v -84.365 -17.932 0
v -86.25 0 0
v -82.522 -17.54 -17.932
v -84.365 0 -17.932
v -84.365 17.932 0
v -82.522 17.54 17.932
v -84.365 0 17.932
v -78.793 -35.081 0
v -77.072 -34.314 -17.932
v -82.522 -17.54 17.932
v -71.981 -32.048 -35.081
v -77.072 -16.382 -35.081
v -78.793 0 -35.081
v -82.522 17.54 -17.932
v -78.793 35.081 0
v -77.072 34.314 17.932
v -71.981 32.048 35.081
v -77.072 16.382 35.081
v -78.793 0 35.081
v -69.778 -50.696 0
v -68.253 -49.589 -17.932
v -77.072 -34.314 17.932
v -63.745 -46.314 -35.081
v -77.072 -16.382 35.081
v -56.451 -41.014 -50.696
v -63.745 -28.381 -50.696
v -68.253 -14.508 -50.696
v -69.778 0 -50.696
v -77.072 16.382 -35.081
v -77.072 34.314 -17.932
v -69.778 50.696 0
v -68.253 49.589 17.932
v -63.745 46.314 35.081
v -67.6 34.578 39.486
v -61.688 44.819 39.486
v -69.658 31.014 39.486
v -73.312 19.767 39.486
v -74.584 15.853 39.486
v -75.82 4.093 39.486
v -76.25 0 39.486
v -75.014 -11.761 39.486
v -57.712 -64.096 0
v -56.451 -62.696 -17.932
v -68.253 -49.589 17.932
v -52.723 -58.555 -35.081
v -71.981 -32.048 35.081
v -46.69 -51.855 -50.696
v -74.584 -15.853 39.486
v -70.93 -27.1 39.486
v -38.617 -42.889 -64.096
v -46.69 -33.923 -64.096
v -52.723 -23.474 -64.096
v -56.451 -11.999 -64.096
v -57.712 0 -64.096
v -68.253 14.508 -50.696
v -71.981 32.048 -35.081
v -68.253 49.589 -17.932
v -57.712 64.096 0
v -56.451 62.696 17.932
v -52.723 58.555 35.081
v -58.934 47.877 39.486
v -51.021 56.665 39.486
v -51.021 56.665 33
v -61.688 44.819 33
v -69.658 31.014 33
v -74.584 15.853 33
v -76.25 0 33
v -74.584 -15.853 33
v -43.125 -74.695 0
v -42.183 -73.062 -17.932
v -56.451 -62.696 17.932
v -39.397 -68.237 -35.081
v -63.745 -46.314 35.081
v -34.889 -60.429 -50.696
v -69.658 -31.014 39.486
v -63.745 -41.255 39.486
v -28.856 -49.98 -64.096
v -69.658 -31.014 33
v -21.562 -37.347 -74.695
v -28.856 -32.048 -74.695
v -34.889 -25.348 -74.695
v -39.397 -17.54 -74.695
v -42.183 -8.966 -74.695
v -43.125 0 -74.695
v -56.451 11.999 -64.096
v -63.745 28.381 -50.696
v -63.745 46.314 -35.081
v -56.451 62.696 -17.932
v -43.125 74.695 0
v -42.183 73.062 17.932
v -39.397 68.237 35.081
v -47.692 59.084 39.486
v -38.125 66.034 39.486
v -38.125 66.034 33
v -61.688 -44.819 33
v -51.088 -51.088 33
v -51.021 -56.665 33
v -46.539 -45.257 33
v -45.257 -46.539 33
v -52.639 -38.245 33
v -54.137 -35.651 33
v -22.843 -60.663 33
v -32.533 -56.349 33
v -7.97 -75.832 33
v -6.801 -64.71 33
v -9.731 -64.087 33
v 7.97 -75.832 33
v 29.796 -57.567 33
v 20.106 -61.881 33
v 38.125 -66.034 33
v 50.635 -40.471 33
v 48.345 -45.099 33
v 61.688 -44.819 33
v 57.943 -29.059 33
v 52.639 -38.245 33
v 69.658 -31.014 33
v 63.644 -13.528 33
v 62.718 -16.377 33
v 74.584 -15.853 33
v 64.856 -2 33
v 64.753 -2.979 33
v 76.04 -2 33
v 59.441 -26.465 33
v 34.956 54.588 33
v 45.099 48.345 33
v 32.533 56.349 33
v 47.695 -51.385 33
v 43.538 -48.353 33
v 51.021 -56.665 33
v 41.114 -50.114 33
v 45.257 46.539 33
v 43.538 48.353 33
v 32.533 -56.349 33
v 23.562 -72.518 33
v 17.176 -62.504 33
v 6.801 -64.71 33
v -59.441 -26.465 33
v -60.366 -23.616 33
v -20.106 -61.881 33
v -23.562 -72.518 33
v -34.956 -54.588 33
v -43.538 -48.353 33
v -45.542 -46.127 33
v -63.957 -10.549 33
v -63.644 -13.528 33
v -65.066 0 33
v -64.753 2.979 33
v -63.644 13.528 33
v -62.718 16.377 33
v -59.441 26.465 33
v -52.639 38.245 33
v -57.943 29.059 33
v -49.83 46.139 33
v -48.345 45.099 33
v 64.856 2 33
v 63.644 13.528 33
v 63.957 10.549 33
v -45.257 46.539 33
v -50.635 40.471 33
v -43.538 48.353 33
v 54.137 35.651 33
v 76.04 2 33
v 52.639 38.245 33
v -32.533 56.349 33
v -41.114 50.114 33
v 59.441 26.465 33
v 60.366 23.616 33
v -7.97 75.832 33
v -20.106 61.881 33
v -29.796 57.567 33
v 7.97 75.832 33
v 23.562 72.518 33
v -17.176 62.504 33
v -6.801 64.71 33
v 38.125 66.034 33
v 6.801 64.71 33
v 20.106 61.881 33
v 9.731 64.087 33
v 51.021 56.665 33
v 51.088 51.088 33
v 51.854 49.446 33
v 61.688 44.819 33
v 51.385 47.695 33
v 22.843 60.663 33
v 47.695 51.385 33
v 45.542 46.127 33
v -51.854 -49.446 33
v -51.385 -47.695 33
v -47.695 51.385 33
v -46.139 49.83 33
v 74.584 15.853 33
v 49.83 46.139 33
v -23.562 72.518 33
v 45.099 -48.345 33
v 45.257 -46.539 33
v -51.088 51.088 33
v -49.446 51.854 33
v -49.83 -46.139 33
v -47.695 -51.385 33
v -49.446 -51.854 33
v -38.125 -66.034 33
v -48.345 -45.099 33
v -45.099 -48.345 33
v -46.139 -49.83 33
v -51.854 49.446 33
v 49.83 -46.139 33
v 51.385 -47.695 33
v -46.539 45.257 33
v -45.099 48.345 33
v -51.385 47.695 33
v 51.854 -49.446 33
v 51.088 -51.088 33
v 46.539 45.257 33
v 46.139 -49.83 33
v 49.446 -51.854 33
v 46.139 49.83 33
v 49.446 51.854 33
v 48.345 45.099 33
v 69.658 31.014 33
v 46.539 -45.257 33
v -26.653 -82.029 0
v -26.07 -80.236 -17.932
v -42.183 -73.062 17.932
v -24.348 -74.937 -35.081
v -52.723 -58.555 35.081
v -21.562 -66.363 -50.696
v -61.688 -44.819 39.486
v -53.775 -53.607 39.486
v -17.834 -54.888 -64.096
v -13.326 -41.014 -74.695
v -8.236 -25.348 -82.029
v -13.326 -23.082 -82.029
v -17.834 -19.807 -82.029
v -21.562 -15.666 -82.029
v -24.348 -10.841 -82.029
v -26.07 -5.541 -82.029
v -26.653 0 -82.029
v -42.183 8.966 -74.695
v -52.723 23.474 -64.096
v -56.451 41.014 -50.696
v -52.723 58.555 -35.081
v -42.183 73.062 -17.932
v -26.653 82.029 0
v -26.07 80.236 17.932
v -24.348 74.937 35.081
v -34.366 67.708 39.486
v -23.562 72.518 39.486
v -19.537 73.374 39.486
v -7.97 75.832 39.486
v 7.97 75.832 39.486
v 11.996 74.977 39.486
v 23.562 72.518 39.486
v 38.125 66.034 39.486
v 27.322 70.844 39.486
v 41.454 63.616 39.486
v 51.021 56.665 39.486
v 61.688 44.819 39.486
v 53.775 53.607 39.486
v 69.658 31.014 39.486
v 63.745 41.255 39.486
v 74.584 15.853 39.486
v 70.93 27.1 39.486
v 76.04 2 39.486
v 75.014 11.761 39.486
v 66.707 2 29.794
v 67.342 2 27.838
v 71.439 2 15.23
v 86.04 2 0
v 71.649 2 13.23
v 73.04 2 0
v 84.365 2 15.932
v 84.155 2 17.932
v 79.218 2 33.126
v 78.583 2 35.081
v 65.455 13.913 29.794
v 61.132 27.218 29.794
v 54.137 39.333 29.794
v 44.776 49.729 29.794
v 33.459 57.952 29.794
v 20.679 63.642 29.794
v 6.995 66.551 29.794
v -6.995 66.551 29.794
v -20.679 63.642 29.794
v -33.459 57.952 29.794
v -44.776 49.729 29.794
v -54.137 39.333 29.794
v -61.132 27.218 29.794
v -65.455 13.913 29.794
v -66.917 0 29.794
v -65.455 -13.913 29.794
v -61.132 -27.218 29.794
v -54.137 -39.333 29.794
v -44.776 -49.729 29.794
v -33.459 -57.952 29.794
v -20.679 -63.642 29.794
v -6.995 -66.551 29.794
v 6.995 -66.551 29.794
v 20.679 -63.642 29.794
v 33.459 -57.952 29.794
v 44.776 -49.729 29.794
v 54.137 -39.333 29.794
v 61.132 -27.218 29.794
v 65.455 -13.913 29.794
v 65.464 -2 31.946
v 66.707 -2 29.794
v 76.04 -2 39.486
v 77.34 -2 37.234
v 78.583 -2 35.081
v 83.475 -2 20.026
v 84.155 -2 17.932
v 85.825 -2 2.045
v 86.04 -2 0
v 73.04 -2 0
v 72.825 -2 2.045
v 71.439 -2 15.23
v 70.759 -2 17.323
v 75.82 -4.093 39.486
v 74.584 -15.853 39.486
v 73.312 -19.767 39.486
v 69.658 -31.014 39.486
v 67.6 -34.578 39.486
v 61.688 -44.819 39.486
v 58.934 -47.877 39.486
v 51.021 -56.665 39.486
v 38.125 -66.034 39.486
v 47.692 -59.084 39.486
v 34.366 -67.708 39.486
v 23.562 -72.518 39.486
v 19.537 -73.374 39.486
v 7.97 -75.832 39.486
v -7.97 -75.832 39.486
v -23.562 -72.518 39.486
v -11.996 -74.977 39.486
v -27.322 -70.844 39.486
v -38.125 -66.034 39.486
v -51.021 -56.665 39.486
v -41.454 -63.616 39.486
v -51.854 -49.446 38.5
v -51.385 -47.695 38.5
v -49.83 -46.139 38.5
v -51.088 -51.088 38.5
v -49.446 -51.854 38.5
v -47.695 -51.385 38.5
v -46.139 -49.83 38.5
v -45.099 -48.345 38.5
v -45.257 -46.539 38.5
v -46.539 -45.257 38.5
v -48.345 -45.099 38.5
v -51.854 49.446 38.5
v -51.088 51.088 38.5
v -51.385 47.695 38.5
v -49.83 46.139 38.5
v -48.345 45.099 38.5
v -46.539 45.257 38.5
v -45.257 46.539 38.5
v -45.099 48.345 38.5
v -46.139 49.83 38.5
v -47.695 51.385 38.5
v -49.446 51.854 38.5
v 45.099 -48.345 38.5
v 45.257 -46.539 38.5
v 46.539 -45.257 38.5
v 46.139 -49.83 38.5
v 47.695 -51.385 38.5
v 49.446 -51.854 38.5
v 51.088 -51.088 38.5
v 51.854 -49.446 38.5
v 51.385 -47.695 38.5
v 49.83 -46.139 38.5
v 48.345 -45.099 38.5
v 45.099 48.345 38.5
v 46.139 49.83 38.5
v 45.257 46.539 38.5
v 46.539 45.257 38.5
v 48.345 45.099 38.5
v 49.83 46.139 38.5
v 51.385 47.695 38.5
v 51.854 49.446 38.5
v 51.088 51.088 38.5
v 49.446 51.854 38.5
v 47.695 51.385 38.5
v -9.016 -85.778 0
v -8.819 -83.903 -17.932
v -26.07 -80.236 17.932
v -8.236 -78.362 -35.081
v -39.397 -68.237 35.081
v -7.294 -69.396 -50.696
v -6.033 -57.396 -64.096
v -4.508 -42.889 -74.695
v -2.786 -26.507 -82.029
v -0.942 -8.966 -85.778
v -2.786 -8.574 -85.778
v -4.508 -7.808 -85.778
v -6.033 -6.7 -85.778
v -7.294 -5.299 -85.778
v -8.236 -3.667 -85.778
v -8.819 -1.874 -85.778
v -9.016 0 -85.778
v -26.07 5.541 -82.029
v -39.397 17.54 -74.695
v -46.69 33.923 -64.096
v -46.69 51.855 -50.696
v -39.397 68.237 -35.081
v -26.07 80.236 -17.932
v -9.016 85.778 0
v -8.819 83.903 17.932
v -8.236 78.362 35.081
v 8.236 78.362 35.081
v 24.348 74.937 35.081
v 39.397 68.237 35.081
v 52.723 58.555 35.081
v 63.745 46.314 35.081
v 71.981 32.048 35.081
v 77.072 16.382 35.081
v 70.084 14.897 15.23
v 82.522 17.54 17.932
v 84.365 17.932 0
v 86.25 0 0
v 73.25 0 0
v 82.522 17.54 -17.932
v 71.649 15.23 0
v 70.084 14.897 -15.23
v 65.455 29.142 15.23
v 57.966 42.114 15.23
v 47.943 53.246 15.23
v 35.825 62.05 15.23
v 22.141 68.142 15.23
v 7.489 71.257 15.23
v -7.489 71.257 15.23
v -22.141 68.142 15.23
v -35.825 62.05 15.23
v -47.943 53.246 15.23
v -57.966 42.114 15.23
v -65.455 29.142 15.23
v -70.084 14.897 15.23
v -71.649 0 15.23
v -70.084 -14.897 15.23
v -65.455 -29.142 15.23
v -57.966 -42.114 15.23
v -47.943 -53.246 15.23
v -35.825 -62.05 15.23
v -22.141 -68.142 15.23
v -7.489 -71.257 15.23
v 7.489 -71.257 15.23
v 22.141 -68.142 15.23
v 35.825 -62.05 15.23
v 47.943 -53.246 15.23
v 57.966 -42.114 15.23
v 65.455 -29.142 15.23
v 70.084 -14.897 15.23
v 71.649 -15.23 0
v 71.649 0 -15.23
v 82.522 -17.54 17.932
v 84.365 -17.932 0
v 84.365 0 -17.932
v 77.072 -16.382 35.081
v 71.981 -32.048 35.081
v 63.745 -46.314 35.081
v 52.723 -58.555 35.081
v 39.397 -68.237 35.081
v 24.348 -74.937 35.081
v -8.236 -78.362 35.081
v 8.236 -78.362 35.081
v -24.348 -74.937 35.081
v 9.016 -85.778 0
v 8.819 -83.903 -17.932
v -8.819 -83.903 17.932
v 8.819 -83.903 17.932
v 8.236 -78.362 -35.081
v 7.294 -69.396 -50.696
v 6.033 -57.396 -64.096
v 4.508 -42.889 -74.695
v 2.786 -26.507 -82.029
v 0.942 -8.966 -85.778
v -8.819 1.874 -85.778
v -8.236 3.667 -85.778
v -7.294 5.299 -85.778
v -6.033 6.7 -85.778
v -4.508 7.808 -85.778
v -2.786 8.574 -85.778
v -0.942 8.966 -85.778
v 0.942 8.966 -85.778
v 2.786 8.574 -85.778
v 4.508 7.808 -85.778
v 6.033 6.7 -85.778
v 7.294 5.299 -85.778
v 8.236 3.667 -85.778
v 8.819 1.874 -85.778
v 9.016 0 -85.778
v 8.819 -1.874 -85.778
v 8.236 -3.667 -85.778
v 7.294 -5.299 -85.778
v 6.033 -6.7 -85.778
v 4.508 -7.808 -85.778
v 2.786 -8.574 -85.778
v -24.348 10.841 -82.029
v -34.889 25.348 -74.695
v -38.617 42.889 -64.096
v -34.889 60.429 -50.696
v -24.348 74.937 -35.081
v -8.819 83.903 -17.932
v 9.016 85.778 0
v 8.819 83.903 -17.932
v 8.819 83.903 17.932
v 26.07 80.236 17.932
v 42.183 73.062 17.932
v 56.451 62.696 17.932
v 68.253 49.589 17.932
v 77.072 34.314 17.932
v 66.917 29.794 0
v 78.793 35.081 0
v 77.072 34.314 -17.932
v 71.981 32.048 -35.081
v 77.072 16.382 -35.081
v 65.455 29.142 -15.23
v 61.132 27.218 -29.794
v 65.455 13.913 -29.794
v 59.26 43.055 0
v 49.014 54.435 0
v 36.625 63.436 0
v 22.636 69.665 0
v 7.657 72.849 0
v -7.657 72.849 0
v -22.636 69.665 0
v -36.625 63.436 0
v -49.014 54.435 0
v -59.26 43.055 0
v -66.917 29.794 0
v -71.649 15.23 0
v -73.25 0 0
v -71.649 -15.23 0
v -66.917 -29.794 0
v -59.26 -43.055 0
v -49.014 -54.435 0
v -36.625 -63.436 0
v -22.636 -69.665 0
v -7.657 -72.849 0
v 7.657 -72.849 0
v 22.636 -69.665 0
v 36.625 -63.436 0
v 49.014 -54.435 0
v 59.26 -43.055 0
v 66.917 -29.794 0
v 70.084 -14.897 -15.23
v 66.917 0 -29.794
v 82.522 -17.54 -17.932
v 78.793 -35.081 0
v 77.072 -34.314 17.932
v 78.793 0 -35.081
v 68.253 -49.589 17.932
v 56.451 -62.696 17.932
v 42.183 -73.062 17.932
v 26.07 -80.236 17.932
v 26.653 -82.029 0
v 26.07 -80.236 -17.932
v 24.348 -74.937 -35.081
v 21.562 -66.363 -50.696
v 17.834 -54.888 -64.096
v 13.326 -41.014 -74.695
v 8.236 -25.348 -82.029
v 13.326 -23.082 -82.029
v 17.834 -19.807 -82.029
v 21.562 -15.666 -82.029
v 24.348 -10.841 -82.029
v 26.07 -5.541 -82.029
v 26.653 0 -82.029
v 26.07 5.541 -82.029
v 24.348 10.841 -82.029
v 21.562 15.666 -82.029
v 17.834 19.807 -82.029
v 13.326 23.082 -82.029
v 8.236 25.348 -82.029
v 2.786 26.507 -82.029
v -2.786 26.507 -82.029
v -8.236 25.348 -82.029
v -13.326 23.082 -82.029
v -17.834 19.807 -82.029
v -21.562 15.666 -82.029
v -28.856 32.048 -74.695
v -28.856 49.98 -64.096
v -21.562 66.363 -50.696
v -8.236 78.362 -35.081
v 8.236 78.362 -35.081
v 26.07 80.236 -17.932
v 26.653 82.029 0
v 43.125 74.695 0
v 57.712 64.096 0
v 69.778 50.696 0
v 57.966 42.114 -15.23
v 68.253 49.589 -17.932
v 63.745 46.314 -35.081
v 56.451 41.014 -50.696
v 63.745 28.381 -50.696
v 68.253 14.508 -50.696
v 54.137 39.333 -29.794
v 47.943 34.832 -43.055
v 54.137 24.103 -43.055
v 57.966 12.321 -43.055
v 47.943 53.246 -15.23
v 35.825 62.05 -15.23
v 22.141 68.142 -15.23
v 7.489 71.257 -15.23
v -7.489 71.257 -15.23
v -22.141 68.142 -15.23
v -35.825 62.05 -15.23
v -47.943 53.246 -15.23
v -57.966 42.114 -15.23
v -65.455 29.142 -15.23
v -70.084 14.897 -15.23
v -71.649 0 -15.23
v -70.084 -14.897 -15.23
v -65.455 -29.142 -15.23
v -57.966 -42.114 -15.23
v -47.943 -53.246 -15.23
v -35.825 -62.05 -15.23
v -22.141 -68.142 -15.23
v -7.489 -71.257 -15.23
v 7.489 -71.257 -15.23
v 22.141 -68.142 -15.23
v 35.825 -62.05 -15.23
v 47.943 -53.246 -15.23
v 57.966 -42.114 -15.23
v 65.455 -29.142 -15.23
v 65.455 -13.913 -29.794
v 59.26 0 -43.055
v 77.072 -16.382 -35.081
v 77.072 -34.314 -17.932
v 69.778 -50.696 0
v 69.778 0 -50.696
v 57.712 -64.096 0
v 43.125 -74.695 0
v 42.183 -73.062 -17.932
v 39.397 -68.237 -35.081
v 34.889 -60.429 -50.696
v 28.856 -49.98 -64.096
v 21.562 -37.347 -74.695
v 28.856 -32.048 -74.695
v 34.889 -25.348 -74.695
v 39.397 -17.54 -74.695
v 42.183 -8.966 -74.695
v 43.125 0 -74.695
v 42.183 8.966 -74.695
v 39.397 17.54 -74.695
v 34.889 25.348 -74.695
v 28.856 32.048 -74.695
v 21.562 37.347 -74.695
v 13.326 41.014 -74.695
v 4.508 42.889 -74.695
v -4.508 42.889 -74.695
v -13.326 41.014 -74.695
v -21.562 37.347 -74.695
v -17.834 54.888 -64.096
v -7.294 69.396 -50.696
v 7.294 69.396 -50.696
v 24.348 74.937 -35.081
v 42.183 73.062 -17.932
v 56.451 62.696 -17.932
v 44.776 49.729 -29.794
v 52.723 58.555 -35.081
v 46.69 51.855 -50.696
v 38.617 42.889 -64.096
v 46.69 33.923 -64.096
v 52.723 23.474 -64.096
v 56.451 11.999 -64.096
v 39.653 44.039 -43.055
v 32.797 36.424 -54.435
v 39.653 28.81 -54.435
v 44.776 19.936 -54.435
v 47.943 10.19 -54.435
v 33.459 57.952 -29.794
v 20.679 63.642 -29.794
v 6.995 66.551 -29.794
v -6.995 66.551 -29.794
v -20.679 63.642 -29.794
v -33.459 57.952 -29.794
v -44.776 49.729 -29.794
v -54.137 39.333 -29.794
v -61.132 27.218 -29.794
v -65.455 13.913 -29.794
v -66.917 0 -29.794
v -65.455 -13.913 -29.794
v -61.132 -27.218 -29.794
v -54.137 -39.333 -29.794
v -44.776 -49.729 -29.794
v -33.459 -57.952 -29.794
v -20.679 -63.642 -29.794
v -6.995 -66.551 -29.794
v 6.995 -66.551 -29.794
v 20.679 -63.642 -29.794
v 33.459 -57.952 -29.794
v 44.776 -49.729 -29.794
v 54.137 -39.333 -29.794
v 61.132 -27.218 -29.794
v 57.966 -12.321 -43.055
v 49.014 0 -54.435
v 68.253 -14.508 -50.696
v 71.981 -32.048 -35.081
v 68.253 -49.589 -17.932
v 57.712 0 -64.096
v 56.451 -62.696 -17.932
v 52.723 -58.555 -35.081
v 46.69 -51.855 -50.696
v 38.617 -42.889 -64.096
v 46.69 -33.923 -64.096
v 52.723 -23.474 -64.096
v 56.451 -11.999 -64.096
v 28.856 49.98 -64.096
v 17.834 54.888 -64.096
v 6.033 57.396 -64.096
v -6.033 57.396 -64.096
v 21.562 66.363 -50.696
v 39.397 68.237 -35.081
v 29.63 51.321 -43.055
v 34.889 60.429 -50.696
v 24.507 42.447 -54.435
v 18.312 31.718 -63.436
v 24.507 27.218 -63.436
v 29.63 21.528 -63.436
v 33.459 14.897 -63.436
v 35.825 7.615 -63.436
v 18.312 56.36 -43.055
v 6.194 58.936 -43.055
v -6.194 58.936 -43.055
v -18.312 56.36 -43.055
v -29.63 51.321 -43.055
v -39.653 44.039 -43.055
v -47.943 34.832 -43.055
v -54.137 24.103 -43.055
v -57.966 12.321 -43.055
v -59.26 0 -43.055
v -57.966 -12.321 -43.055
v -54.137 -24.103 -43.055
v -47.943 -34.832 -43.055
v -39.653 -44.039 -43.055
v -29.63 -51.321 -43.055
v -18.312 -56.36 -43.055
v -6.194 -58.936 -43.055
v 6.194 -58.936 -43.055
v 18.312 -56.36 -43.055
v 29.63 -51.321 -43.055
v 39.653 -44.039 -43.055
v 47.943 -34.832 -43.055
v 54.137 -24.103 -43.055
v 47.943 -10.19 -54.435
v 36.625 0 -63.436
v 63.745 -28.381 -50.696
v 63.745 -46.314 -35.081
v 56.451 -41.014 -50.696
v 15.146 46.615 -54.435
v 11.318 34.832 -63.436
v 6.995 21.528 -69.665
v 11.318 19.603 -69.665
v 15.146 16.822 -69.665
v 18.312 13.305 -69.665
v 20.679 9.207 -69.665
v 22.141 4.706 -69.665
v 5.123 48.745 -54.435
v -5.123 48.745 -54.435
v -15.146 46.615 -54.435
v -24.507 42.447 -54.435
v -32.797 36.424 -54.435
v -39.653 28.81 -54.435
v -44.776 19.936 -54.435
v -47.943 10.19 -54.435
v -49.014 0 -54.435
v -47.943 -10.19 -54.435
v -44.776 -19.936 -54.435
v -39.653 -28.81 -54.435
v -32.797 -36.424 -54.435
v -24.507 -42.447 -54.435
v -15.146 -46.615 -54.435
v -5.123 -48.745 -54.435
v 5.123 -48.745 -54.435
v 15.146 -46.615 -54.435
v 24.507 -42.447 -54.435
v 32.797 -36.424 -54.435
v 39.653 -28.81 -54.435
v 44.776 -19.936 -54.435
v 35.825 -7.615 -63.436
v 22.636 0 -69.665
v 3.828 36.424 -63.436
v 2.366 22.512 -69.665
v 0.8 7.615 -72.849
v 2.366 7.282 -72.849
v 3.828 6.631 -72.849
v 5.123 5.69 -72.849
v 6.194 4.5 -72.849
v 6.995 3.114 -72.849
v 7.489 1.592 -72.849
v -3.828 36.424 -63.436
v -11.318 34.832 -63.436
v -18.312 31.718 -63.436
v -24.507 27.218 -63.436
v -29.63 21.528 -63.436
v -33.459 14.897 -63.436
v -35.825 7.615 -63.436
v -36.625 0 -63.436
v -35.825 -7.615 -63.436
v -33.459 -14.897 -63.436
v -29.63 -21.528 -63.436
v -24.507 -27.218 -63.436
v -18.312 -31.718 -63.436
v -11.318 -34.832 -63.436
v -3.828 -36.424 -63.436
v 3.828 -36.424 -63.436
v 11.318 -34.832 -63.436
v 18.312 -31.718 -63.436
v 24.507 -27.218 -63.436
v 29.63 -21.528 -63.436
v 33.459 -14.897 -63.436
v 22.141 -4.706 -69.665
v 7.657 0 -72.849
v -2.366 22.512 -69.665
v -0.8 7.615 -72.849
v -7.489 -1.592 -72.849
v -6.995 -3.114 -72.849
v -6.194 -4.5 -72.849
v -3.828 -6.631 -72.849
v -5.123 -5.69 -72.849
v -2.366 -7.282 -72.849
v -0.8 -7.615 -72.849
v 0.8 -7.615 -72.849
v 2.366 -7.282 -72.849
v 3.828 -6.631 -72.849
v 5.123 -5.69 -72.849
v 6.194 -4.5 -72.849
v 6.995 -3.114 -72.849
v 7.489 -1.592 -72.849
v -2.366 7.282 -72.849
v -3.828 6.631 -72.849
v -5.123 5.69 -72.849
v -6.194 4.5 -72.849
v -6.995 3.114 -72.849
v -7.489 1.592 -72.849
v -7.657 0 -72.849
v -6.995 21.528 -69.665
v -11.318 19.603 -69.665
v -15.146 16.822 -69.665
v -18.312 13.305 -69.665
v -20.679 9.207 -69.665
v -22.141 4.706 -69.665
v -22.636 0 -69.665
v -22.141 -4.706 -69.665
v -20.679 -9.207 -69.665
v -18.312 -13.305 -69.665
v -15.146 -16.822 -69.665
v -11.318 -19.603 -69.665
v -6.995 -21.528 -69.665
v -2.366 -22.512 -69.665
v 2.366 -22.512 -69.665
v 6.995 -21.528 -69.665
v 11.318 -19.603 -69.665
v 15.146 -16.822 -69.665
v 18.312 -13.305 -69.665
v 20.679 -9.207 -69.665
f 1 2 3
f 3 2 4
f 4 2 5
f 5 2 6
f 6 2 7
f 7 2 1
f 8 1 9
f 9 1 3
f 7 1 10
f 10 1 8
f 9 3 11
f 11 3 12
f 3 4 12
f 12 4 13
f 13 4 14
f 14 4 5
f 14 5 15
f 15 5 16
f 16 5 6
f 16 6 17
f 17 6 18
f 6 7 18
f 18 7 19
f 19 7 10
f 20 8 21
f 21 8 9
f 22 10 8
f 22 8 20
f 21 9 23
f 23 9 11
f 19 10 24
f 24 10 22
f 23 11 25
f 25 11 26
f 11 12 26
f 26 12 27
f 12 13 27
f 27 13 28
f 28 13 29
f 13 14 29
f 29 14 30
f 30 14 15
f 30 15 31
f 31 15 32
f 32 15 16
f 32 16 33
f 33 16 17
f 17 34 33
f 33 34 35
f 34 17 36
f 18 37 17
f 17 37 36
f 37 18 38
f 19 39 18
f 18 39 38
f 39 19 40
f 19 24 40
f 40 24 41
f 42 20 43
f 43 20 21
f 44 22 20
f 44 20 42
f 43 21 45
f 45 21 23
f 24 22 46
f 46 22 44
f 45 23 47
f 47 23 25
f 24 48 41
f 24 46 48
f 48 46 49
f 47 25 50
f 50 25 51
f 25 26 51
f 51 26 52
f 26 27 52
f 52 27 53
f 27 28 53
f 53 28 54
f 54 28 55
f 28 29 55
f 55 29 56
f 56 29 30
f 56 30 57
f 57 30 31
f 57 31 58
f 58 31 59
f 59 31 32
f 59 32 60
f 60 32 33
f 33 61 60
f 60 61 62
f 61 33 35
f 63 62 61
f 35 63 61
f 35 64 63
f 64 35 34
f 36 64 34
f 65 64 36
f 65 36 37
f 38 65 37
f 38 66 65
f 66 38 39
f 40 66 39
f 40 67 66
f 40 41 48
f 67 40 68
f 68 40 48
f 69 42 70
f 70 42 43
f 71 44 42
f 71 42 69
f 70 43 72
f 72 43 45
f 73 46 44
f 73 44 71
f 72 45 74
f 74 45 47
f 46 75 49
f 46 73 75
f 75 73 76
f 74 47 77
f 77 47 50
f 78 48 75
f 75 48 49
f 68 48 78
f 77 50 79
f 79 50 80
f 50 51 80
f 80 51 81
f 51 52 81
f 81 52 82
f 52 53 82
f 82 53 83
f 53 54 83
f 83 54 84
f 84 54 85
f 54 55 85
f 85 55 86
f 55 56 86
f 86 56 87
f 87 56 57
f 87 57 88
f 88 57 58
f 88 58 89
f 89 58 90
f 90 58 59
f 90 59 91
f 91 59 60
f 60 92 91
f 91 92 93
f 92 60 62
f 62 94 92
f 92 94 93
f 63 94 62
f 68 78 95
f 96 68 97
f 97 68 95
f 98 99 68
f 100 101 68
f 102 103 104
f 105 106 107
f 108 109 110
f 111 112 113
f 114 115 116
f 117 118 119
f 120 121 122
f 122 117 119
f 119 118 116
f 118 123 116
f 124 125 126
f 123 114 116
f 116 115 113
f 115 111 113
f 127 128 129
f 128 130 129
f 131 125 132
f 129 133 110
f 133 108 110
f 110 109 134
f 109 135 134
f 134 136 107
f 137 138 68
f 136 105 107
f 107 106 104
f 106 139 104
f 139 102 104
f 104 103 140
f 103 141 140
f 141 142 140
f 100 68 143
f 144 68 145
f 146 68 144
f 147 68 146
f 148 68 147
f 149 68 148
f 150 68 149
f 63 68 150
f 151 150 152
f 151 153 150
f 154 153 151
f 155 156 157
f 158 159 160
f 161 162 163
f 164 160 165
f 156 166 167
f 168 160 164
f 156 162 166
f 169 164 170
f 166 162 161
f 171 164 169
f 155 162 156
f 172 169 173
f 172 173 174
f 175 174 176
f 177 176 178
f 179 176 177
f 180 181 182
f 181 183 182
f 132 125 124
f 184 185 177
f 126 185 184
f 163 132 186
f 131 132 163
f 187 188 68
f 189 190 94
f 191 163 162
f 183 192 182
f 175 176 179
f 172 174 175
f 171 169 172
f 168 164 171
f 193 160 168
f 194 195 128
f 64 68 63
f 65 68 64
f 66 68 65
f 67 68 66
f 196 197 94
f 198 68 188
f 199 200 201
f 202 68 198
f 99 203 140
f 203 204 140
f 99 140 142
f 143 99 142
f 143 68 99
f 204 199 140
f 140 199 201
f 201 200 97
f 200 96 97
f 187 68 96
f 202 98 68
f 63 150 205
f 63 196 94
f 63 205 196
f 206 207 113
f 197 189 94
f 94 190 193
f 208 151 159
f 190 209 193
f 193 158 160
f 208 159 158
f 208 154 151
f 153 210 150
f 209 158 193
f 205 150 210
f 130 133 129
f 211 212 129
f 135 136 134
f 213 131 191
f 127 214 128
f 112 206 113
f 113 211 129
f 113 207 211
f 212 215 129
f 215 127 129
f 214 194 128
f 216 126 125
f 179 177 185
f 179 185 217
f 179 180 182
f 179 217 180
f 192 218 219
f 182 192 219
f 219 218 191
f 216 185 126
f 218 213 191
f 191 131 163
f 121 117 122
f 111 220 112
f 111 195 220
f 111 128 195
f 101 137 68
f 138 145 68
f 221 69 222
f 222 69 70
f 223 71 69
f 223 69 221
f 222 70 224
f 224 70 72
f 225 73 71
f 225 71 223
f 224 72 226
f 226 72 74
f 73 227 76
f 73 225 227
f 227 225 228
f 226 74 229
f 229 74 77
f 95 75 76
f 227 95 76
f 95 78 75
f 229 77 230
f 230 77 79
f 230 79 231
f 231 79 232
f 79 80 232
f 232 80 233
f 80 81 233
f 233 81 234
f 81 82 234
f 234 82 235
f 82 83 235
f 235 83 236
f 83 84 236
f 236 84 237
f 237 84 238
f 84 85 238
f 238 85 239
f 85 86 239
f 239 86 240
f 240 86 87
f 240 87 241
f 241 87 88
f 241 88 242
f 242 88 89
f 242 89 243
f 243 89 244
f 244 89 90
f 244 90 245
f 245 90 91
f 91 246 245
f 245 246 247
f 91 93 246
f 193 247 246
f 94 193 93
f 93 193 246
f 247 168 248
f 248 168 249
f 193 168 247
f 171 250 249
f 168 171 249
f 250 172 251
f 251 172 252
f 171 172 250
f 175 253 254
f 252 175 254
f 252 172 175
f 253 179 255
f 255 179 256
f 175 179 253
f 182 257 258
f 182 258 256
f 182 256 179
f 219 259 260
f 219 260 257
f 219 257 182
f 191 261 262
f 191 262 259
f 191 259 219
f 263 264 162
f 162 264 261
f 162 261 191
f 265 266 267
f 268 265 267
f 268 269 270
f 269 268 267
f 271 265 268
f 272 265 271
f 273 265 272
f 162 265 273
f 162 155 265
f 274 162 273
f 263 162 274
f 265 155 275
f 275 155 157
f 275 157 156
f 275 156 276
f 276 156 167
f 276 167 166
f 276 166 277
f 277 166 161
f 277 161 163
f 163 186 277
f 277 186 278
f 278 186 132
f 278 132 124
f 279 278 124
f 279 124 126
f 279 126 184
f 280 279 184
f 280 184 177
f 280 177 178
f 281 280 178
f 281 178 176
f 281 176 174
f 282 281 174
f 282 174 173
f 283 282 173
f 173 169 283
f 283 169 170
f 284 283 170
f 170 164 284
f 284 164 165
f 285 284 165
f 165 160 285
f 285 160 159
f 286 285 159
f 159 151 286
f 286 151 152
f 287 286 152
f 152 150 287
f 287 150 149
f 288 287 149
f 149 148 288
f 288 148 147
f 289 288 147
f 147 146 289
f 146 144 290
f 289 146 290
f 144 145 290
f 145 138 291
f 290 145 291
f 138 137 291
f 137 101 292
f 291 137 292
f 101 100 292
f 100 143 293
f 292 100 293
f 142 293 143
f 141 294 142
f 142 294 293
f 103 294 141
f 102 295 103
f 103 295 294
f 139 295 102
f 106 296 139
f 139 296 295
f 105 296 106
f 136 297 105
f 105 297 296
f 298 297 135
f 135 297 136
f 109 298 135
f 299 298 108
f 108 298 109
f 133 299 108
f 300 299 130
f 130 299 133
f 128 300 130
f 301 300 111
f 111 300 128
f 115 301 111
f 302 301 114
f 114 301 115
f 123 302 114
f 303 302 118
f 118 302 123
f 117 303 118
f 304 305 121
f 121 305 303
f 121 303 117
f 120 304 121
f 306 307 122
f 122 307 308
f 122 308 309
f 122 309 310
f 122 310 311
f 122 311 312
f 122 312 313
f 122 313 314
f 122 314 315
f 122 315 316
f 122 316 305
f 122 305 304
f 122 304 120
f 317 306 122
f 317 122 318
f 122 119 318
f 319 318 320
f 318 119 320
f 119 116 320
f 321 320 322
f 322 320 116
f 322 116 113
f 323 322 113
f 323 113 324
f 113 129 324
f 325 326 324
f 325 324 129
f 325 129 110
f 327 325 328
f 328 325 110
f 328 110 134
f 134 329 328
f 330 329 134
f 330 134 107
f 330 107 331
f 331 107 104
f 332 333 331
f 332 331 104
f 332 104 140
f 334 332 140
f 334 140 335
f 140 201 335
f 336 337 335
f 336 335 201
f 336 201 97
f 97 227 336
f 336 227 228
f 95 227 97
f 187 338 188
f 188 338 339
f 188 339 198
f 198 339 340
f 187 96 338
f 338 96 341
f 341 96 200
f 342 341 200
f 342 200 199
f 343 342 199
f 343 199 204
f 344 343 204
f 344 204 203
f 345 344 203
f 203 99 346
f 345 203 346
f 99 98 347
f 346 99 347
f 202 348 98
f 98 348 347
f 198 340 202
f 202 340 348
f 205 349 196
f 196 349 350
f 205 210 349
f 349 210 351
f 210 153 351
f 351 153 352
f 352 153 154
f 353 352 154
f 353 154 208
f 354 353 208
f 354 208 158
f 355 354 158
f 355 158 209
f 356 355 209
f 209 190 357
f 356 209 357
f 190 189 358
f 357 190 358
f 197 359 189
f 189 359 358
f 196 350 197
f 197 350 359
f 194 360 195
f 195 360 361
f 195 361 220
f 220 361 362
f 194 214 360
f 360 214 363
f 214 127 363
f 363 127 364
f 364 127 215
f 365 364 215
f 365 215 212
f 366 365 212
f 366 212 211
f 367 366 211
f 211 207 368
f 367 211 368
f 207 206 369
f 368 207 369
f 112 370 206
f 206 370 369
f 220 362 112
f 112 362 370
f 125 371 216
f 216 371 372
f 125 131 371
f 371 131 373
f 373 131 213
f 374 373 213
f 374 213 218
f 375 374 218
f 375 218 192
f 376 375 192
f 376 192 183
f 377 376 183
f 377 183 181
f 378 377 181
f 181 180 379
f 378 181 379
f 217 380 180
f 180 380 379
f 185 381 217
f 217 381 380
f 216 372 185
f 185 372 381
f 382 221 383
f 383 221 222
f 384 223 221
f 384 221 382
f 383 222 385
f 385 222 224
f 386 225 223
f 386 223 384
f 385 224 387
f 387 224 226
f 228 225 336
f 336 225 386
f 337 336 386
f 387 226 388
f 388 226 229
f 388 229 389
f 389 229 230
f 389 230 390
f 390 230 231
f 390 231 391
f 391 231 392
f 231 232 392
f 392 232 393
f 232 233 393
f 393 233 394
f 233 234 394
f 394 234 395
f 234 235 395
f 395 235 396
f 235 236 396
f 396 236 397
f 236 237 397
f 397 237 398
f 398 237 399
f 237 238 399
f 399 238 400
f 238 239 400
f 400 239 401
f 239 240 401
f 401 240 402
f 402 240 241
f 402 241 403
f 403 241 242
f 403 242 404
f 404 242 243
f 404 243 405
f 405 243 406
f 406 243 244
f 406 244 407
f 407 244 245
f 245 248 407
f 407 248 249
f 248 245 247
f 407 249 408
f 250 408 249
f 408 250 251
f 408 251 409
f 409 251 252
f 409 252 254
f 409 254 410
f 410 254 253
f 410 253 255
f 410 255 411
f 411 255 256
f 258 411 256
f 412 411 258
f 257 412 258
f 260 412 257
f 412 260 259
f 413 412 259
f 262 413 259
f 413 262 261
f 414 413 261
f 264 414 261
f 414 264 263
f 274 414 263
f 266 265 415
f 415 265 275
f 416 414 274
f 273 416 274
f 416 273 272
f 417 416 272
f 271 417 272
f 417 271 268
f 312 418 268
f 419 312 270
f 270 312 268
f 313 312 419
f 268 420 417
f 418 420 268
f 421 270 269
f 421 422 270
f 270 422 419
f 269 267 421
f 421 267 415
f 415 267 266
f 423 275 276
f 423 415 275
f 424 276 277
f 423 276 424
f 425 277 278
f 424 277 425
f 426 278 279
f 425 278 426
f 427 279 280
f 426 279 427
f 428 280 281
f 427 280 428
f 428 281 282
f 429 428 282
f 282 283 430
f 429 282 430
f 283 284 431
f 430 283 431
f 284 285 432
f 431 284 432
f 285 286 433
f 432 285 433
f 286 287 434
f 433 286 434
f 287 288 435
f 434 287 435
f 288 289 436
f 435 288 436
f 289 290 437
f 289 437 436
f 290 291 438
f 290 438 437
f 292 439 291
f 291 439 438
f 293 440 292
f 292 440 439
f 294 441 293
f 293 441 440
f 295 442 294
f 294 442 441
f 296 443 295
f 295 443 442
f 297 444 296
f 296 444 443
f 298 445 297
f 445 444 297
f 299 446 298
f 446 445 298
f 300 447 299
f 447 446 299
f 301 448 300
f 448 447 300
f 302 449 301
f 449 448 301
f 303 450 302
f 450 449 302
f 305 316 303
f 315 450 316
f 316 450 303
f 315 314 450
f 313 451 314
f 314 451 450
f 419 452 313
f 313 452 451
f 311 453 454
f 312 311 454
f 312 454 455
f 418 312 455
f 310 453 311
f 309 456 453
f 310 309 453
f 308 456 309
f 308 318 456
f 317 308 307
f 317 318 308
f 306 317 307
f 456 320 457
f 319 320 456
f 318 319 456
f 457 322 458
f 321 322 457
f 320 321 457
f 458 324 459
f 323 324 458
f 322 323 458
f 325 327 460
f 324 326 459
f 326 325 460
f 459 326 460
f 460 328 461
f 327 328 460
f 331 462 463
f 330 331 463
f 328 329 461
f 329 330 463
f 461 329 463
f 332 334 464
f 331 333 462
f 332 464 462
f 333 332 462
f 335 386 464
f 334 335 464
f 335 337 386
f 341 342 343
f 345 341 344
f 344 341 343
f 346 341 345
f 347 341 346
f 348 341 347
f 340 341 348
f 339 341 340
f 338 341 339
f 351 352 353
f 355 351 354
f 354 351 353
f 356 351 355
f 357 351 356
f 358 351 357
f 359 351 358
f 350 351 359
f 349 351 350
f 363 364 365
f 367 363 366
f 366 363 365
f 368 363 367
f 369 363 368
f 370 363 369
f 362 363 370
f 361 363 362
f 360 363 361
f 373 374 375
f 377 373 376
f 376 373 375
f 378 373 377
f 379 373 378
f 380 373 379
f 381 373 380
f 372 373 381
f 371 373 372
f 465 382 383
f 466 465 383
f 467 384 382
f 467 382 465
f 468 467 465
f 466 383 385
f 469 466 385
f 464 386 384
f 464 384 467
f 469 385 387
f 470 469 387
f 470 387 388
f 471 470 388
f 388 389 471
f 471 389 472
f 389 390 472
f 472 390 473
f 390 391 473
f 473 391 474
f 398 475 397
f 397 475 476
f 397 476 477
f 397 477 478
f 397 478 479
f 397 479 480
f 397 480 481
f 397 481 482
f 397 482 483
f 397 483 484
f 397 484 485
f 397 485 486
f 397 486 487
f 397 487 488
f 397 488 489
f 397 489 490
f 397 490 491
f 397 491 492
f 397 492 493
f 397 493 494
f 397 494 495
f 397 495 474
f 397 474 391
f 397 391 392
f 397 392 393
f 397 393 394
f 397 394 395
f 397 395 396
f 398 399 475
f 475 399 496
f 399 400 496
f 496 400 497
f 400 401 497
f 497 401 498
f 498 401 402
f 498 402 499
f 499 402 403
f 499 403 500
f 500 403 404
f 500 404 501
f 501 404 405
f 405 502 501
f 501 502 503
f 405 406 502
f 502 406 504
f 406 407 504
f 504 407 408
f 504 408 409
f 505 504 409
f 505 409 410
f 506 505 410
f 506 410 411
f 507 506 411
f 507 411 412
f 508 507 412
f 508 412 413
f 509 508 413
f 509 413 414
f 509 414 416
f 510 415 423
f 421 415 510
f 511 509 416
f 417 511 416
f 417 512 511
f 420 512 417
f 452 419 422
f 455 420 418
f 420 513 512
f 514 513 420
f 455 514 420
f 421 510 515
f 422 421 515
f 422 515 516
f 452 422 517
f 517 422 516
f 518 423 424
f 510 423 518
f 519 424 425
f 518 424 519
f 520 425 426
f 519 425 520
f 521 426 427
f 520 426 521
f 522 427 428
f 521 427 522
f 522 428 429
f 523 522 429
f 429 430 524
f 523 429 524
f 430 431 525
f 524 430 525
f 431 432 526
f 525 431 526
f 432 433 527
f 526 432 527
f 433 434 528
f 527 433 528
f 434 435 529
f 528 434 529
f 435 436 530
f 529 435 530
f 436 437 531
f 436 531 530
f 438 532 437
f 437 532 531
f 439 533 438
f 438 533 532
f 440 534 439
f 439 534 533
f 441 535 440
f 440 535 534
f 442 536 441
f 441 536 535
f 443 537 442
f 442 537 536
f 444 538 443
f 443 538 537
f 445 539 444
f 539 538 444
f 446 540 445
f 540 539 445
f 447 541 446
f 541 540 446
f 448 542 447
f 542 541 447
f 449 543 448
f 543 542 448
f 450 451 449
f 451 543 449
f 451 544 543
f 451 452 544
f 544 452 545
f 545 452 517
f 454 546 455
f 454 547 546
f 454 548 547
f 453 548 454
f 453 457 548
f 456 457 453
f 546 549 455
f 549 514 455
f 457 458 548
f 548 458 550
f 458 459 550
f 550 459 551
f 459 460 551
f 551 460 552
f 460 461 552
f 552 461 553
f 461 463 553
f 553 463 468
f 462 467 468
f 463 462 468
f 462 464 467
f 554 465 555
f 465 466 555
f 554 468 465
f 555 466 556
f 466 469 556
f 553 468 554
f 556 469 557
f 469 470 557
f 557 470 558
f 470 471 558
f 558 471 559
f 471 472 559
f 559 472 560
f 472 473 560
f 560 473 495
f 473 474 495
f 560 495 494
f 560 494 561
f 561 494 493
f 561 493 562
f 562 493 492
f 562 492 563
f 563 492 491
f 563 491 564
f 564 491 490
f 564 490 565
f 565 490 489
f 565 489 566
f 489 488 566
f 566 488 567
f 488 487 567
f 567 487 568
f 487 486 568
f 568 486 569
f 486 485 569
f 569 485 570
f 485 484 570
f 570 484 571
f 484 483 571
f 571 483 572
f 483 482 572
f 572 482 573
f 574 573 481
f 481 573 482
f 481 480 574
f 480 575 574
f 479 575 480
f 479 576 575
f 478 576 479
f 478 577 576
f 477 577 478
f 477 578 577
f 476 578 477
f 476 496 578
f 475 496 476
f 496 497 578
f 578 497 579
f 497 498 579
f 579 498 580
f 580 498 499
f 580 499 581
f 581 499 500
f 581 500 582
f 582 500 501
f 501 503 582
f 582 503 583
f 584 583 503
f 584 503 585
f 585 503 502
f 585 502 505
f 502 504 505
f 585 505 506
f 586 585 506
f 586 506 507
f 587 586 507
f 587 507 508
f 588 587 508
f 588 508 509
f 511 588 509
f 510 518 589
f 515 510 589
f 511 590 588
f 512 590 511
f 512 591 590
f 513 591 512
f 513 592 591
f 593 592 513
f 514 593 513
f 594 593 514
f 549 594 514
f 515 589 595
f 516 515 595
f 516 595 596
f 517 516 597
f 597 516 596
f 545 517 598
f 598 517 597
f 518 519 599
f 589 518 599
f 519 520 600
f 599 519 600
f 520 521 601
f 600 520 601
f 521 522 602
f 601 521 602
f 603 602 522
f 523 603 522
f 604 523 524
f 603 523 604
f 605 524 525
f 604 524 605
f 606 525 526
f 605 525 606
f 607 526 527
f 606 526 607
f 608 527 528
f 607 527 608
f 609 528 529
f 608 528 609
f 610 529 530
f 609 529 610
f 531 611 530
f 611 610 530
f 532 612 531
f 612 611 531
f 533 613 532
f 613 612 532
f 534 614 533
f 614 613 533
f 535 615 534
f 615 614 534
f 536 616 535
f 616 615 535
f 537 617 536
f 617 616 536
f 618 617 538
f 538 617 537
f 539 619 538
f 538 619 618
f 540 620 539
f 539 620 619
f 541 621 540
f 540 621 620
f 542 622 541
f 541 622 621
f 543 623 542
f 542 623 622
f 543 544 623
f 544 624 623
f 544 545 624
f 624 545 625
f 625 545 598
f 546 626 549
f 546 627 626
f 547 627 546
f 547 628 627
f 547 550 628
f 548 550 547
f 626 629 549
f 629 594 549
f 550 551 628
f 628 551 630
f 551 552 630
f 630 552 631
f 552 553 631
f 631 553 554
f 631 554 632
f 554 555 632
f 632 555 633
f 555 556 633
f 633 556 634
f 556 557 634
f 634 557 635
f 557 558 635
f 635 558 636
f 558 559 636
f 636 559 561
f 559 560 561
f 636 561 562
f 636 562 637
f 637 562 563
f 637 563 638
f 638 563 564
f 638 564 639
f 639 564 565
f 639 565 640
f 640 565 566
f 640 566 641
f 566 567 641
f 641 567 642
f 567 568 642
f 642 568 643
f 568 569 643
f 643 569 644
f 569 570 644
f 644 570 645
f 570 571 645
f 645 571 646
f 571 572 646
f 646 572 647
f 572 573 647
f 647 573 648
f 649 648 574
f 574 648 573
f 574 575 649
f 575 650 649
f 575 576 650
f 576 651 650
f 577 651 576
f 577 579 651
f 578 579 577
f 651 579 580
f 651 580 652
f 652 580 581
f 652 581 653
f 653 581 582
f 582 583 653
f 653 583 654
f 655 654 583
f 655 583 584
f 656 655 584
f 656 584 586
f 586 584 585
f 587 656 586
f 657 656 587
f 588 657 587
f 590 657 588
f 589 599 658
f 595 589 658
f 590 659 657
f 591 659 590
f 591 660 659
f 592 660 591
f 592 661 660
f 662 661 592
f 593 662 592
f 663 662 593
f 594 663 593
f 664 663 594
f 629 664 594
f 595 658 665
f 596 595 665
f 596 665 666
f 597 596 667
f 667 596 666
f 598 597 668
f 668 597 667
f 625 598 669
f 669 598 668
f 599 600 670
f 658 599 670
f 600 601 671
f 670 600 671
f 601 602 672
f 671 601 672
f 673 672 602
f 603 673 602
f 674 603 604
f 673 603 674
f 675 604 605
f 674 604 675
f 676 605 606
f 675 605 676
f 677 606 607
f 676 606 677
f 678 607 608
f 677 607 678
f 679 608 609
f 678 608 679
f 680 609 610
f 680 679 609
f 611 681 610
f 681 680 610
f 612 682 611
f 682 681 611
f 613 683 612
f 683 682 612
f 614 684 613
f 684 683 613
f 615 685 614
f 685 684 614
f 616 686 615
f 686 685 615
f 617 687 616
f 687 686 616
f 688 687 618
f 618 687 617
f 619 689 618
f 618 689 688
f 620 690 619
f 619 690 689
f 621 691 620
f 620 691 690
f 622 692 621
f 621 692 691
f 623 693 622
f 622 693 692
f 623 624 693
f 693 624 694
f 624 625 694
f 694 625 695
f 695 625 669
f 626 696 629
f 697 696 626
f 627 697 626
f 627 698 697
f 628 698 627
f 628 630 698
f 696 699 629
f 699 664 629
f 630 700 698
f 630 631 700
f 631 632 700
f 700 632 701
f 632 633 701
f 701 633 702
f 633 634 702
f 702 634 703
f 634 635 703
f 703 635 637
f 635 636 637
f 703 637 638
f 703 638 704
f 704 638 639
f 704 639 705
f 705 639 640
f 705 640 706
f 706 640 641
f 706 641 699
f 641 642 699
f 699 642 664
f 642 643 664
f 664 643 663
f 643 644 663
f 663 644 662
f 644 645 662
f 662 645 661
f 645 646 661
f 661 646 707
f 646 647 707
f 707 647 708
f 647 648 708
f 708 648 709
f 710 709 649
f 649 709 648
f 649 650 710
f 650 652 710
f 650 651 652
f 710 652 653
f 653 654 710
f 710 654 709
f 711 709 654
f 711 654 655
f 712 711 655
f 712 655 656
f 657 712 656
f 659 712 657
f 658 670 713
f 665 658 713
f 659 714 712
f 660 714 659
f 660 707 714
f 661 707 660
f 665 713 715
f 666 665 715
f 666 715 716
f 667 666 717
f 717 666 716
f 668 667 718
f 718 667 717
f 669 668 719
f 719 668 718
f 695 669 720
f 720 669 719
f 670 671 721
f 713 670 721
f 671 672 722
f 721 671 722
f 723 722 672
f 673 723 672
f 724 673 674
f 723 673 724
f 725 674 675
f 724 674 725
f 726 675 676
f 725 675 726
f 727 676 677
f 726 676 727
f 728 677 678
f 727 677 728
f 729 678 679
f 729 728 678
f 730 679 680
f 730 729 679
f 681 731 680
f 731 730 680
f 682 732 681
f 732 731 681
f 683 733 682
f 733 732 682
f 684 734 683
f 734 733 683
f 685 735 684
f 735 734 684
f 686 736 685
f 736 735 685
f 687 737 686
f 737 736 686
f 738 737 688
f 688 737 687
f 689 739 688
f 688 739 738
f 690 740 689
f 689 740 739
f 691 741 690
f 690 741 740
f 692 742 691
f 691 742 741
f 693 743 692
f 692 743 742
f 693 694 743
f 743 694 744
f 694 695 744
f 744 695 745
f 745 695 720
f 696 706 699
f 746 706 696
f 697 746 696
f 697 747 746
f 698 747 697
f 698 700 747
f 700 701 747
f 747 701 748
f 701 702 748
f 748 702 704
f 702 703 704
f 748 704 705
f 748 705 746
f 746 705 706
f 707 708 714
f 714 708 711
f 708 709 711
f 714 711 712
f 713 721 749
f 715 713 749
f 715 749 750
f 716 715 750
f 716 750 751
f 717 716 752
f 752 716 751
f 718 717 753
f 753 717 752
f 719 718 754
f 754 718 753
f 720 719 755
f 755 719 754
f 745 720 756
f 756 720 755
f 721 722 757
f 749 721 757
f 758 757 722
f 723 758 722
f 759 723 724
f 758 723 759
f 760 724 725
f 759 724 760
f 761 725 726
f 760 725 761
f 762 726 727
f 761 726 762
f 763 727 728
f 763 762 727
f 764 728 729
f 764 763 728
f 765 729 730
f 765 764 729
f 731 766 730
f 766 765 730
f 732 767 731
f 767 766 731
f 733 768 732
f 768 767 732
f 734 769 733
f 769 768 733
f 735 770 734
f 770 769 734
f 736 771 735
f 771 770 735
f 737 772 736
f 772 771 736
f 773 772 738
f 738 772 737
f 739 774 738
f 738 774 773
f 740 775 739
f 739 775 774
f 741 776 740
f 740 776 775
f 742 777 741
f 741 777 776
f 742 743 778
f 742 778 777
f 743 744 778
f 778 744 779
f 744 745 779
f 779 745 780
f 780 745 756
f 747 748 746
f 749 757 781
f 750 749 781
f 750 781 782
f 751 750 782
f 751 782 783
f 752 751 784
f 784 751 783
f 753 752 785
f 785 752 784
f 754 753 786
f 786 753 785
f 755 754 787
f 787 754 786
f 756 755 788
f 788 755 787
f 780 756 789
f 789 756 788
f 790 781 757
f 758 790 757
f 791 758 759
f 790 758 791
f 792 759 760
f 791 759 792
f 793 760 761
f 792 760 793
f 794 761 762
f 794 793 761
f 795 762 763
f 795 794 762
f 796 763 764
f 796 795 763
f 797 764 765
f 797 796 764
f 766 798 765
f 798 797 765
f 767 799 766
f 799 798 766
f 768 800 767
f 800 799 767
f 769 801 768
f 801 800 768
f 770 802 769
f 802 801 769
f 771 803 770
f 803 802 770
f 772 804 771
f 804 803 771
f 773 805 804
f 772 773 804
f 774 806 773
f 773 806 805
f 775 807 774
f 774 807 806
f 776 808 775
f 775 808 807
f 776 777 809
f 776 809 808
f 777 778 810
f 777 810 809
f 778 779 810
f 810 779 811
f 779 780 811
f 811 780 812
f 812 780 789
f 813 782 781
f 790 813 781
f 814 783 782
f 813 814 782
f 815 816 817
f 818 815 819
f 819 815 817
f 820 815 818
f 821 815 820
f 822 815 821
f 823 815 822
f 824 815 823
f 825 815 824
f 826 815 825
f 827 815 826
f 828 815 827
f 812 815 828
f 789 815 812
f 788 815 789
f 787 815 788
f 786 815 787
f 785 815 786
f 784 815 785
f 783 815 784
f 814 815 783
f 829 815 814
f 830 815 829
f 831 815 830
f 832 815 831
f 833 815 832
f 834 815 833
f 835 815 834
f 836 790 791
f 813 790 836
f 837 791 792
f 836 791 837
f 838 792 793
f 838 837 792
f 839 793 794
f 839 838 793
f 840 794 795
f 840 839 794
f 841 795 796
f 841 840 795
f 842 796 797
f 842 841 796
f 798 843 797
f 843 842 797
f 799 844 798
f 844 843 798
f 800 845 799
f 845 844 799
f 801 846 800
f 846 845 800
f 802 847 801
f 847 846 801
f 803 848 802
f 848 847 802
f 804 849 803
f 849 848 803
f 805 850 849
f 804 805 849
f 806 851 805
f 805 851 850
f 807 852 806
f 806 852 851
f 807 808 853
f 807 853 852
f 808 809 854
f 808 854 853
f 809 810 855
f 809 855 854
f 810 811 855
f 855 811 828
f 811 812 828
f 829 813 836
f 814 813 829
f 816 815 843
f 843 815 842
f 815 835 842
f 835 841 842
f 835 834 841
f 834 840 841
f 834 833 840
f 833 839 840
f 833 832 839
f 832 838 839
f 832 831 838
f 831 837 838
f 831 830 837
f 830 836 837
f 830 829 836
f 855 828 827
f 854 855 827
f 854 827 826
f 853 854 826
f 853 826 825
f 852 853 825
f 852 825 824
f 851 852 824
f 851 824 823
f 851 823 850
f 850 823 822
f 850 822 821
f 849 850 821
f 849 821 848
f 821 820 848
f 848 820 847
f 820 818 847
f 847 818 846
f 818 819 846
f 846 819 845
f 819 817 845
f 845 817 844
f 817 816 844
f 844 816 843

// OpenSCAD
// Measurements. Units are mm.

// The front of the speaker is something like a rounded square.
// Width of the front at its widest part
front_center_width = 134.7;
// Width of the front at the point where it sharply transitions to the other pside of the square
front_edge_width = 110.0;
// Distance from one "corner" of the rounder square the its opposite corner (redundant measurement)
front_max_diam = 152.5; // 6"

// There is an oval-shaped mounting hole at each corner with primary axis towards the center of the front
// distance mounting hole starts from the corner
corner_mount_inset = 4.0;
// size of mounting hole ellipse
corner_mount_width = 5.3;
corner_mount_length = 7.5;
// distance from the back of the speaker to the rear-most face of the mounting plate
height_to_plate = 52.8;
plate_thickness = 5.5;

// enclosure settings
wall_thickness = 13;
// make the sphere larger to accomodate the speaker's guts
radial_padding = 10;
// maximum thickness of wire to support for wire routing
wire_thickness = 4;

module face_hole() 
{
	// create one of the 4 mounting holes for later subtraction from the faceplate
	rotate([0, 0, 45]) translate([front_max_diam/2-corner_mount_inset-corner_mount_length/2, 0, 0]) hull() {
		translate([(corner_mount_length-corner_mount_width)/2, 0, 0]) cylinder(r=corner_mount_width/2, h=plate_thickness);
		translate([-(corner_mount_length-corner_mount_width)/2, 0, 0]) cylinder(r=corner_mount_width/2, h=plate_thickness);
	}
}

module face_plate()
{
	// create the faceplate with mounting holes to later subtract from the enclosure
	translate([0, 0, 0]) difference() {
		cylinder(r=front_max_diam/2, h=plate_thickness);
		rotate([0, 0, 0])   face_hole();
		rotate([0, 0, 90])  face_hole();
		rotate([0, 0, 180]) face_hole();
		rotate([0, 0, 270]) face_hole();
	}
}

module wire_route()
{
	// create a shape to subtract from the enclosure to accomodate wire routing
	translate([0, -wire_thickness/2, 0]) cube(size=[front_max_diam/2+radial_padding, wire_thickness, front_max_diam/2+radial_padding], center=false);
}

module enclosure()
{
	// create a speherical enclosure for the speaker
	difference() {
		sphere(r=front_max_diam/2+radial_padding);
		sphere(r=front_max_diam/2+radial_padding - wall_thickness);
		translate([0, 0, radial_padding*3.3]) union() {
			translate([0, 0, plate_thickness]) cylinder(r=front_max_diam/2, h=front_max_diam/2);
			face_plate();
		}
		wire_route();
	}
}

enclosure();
